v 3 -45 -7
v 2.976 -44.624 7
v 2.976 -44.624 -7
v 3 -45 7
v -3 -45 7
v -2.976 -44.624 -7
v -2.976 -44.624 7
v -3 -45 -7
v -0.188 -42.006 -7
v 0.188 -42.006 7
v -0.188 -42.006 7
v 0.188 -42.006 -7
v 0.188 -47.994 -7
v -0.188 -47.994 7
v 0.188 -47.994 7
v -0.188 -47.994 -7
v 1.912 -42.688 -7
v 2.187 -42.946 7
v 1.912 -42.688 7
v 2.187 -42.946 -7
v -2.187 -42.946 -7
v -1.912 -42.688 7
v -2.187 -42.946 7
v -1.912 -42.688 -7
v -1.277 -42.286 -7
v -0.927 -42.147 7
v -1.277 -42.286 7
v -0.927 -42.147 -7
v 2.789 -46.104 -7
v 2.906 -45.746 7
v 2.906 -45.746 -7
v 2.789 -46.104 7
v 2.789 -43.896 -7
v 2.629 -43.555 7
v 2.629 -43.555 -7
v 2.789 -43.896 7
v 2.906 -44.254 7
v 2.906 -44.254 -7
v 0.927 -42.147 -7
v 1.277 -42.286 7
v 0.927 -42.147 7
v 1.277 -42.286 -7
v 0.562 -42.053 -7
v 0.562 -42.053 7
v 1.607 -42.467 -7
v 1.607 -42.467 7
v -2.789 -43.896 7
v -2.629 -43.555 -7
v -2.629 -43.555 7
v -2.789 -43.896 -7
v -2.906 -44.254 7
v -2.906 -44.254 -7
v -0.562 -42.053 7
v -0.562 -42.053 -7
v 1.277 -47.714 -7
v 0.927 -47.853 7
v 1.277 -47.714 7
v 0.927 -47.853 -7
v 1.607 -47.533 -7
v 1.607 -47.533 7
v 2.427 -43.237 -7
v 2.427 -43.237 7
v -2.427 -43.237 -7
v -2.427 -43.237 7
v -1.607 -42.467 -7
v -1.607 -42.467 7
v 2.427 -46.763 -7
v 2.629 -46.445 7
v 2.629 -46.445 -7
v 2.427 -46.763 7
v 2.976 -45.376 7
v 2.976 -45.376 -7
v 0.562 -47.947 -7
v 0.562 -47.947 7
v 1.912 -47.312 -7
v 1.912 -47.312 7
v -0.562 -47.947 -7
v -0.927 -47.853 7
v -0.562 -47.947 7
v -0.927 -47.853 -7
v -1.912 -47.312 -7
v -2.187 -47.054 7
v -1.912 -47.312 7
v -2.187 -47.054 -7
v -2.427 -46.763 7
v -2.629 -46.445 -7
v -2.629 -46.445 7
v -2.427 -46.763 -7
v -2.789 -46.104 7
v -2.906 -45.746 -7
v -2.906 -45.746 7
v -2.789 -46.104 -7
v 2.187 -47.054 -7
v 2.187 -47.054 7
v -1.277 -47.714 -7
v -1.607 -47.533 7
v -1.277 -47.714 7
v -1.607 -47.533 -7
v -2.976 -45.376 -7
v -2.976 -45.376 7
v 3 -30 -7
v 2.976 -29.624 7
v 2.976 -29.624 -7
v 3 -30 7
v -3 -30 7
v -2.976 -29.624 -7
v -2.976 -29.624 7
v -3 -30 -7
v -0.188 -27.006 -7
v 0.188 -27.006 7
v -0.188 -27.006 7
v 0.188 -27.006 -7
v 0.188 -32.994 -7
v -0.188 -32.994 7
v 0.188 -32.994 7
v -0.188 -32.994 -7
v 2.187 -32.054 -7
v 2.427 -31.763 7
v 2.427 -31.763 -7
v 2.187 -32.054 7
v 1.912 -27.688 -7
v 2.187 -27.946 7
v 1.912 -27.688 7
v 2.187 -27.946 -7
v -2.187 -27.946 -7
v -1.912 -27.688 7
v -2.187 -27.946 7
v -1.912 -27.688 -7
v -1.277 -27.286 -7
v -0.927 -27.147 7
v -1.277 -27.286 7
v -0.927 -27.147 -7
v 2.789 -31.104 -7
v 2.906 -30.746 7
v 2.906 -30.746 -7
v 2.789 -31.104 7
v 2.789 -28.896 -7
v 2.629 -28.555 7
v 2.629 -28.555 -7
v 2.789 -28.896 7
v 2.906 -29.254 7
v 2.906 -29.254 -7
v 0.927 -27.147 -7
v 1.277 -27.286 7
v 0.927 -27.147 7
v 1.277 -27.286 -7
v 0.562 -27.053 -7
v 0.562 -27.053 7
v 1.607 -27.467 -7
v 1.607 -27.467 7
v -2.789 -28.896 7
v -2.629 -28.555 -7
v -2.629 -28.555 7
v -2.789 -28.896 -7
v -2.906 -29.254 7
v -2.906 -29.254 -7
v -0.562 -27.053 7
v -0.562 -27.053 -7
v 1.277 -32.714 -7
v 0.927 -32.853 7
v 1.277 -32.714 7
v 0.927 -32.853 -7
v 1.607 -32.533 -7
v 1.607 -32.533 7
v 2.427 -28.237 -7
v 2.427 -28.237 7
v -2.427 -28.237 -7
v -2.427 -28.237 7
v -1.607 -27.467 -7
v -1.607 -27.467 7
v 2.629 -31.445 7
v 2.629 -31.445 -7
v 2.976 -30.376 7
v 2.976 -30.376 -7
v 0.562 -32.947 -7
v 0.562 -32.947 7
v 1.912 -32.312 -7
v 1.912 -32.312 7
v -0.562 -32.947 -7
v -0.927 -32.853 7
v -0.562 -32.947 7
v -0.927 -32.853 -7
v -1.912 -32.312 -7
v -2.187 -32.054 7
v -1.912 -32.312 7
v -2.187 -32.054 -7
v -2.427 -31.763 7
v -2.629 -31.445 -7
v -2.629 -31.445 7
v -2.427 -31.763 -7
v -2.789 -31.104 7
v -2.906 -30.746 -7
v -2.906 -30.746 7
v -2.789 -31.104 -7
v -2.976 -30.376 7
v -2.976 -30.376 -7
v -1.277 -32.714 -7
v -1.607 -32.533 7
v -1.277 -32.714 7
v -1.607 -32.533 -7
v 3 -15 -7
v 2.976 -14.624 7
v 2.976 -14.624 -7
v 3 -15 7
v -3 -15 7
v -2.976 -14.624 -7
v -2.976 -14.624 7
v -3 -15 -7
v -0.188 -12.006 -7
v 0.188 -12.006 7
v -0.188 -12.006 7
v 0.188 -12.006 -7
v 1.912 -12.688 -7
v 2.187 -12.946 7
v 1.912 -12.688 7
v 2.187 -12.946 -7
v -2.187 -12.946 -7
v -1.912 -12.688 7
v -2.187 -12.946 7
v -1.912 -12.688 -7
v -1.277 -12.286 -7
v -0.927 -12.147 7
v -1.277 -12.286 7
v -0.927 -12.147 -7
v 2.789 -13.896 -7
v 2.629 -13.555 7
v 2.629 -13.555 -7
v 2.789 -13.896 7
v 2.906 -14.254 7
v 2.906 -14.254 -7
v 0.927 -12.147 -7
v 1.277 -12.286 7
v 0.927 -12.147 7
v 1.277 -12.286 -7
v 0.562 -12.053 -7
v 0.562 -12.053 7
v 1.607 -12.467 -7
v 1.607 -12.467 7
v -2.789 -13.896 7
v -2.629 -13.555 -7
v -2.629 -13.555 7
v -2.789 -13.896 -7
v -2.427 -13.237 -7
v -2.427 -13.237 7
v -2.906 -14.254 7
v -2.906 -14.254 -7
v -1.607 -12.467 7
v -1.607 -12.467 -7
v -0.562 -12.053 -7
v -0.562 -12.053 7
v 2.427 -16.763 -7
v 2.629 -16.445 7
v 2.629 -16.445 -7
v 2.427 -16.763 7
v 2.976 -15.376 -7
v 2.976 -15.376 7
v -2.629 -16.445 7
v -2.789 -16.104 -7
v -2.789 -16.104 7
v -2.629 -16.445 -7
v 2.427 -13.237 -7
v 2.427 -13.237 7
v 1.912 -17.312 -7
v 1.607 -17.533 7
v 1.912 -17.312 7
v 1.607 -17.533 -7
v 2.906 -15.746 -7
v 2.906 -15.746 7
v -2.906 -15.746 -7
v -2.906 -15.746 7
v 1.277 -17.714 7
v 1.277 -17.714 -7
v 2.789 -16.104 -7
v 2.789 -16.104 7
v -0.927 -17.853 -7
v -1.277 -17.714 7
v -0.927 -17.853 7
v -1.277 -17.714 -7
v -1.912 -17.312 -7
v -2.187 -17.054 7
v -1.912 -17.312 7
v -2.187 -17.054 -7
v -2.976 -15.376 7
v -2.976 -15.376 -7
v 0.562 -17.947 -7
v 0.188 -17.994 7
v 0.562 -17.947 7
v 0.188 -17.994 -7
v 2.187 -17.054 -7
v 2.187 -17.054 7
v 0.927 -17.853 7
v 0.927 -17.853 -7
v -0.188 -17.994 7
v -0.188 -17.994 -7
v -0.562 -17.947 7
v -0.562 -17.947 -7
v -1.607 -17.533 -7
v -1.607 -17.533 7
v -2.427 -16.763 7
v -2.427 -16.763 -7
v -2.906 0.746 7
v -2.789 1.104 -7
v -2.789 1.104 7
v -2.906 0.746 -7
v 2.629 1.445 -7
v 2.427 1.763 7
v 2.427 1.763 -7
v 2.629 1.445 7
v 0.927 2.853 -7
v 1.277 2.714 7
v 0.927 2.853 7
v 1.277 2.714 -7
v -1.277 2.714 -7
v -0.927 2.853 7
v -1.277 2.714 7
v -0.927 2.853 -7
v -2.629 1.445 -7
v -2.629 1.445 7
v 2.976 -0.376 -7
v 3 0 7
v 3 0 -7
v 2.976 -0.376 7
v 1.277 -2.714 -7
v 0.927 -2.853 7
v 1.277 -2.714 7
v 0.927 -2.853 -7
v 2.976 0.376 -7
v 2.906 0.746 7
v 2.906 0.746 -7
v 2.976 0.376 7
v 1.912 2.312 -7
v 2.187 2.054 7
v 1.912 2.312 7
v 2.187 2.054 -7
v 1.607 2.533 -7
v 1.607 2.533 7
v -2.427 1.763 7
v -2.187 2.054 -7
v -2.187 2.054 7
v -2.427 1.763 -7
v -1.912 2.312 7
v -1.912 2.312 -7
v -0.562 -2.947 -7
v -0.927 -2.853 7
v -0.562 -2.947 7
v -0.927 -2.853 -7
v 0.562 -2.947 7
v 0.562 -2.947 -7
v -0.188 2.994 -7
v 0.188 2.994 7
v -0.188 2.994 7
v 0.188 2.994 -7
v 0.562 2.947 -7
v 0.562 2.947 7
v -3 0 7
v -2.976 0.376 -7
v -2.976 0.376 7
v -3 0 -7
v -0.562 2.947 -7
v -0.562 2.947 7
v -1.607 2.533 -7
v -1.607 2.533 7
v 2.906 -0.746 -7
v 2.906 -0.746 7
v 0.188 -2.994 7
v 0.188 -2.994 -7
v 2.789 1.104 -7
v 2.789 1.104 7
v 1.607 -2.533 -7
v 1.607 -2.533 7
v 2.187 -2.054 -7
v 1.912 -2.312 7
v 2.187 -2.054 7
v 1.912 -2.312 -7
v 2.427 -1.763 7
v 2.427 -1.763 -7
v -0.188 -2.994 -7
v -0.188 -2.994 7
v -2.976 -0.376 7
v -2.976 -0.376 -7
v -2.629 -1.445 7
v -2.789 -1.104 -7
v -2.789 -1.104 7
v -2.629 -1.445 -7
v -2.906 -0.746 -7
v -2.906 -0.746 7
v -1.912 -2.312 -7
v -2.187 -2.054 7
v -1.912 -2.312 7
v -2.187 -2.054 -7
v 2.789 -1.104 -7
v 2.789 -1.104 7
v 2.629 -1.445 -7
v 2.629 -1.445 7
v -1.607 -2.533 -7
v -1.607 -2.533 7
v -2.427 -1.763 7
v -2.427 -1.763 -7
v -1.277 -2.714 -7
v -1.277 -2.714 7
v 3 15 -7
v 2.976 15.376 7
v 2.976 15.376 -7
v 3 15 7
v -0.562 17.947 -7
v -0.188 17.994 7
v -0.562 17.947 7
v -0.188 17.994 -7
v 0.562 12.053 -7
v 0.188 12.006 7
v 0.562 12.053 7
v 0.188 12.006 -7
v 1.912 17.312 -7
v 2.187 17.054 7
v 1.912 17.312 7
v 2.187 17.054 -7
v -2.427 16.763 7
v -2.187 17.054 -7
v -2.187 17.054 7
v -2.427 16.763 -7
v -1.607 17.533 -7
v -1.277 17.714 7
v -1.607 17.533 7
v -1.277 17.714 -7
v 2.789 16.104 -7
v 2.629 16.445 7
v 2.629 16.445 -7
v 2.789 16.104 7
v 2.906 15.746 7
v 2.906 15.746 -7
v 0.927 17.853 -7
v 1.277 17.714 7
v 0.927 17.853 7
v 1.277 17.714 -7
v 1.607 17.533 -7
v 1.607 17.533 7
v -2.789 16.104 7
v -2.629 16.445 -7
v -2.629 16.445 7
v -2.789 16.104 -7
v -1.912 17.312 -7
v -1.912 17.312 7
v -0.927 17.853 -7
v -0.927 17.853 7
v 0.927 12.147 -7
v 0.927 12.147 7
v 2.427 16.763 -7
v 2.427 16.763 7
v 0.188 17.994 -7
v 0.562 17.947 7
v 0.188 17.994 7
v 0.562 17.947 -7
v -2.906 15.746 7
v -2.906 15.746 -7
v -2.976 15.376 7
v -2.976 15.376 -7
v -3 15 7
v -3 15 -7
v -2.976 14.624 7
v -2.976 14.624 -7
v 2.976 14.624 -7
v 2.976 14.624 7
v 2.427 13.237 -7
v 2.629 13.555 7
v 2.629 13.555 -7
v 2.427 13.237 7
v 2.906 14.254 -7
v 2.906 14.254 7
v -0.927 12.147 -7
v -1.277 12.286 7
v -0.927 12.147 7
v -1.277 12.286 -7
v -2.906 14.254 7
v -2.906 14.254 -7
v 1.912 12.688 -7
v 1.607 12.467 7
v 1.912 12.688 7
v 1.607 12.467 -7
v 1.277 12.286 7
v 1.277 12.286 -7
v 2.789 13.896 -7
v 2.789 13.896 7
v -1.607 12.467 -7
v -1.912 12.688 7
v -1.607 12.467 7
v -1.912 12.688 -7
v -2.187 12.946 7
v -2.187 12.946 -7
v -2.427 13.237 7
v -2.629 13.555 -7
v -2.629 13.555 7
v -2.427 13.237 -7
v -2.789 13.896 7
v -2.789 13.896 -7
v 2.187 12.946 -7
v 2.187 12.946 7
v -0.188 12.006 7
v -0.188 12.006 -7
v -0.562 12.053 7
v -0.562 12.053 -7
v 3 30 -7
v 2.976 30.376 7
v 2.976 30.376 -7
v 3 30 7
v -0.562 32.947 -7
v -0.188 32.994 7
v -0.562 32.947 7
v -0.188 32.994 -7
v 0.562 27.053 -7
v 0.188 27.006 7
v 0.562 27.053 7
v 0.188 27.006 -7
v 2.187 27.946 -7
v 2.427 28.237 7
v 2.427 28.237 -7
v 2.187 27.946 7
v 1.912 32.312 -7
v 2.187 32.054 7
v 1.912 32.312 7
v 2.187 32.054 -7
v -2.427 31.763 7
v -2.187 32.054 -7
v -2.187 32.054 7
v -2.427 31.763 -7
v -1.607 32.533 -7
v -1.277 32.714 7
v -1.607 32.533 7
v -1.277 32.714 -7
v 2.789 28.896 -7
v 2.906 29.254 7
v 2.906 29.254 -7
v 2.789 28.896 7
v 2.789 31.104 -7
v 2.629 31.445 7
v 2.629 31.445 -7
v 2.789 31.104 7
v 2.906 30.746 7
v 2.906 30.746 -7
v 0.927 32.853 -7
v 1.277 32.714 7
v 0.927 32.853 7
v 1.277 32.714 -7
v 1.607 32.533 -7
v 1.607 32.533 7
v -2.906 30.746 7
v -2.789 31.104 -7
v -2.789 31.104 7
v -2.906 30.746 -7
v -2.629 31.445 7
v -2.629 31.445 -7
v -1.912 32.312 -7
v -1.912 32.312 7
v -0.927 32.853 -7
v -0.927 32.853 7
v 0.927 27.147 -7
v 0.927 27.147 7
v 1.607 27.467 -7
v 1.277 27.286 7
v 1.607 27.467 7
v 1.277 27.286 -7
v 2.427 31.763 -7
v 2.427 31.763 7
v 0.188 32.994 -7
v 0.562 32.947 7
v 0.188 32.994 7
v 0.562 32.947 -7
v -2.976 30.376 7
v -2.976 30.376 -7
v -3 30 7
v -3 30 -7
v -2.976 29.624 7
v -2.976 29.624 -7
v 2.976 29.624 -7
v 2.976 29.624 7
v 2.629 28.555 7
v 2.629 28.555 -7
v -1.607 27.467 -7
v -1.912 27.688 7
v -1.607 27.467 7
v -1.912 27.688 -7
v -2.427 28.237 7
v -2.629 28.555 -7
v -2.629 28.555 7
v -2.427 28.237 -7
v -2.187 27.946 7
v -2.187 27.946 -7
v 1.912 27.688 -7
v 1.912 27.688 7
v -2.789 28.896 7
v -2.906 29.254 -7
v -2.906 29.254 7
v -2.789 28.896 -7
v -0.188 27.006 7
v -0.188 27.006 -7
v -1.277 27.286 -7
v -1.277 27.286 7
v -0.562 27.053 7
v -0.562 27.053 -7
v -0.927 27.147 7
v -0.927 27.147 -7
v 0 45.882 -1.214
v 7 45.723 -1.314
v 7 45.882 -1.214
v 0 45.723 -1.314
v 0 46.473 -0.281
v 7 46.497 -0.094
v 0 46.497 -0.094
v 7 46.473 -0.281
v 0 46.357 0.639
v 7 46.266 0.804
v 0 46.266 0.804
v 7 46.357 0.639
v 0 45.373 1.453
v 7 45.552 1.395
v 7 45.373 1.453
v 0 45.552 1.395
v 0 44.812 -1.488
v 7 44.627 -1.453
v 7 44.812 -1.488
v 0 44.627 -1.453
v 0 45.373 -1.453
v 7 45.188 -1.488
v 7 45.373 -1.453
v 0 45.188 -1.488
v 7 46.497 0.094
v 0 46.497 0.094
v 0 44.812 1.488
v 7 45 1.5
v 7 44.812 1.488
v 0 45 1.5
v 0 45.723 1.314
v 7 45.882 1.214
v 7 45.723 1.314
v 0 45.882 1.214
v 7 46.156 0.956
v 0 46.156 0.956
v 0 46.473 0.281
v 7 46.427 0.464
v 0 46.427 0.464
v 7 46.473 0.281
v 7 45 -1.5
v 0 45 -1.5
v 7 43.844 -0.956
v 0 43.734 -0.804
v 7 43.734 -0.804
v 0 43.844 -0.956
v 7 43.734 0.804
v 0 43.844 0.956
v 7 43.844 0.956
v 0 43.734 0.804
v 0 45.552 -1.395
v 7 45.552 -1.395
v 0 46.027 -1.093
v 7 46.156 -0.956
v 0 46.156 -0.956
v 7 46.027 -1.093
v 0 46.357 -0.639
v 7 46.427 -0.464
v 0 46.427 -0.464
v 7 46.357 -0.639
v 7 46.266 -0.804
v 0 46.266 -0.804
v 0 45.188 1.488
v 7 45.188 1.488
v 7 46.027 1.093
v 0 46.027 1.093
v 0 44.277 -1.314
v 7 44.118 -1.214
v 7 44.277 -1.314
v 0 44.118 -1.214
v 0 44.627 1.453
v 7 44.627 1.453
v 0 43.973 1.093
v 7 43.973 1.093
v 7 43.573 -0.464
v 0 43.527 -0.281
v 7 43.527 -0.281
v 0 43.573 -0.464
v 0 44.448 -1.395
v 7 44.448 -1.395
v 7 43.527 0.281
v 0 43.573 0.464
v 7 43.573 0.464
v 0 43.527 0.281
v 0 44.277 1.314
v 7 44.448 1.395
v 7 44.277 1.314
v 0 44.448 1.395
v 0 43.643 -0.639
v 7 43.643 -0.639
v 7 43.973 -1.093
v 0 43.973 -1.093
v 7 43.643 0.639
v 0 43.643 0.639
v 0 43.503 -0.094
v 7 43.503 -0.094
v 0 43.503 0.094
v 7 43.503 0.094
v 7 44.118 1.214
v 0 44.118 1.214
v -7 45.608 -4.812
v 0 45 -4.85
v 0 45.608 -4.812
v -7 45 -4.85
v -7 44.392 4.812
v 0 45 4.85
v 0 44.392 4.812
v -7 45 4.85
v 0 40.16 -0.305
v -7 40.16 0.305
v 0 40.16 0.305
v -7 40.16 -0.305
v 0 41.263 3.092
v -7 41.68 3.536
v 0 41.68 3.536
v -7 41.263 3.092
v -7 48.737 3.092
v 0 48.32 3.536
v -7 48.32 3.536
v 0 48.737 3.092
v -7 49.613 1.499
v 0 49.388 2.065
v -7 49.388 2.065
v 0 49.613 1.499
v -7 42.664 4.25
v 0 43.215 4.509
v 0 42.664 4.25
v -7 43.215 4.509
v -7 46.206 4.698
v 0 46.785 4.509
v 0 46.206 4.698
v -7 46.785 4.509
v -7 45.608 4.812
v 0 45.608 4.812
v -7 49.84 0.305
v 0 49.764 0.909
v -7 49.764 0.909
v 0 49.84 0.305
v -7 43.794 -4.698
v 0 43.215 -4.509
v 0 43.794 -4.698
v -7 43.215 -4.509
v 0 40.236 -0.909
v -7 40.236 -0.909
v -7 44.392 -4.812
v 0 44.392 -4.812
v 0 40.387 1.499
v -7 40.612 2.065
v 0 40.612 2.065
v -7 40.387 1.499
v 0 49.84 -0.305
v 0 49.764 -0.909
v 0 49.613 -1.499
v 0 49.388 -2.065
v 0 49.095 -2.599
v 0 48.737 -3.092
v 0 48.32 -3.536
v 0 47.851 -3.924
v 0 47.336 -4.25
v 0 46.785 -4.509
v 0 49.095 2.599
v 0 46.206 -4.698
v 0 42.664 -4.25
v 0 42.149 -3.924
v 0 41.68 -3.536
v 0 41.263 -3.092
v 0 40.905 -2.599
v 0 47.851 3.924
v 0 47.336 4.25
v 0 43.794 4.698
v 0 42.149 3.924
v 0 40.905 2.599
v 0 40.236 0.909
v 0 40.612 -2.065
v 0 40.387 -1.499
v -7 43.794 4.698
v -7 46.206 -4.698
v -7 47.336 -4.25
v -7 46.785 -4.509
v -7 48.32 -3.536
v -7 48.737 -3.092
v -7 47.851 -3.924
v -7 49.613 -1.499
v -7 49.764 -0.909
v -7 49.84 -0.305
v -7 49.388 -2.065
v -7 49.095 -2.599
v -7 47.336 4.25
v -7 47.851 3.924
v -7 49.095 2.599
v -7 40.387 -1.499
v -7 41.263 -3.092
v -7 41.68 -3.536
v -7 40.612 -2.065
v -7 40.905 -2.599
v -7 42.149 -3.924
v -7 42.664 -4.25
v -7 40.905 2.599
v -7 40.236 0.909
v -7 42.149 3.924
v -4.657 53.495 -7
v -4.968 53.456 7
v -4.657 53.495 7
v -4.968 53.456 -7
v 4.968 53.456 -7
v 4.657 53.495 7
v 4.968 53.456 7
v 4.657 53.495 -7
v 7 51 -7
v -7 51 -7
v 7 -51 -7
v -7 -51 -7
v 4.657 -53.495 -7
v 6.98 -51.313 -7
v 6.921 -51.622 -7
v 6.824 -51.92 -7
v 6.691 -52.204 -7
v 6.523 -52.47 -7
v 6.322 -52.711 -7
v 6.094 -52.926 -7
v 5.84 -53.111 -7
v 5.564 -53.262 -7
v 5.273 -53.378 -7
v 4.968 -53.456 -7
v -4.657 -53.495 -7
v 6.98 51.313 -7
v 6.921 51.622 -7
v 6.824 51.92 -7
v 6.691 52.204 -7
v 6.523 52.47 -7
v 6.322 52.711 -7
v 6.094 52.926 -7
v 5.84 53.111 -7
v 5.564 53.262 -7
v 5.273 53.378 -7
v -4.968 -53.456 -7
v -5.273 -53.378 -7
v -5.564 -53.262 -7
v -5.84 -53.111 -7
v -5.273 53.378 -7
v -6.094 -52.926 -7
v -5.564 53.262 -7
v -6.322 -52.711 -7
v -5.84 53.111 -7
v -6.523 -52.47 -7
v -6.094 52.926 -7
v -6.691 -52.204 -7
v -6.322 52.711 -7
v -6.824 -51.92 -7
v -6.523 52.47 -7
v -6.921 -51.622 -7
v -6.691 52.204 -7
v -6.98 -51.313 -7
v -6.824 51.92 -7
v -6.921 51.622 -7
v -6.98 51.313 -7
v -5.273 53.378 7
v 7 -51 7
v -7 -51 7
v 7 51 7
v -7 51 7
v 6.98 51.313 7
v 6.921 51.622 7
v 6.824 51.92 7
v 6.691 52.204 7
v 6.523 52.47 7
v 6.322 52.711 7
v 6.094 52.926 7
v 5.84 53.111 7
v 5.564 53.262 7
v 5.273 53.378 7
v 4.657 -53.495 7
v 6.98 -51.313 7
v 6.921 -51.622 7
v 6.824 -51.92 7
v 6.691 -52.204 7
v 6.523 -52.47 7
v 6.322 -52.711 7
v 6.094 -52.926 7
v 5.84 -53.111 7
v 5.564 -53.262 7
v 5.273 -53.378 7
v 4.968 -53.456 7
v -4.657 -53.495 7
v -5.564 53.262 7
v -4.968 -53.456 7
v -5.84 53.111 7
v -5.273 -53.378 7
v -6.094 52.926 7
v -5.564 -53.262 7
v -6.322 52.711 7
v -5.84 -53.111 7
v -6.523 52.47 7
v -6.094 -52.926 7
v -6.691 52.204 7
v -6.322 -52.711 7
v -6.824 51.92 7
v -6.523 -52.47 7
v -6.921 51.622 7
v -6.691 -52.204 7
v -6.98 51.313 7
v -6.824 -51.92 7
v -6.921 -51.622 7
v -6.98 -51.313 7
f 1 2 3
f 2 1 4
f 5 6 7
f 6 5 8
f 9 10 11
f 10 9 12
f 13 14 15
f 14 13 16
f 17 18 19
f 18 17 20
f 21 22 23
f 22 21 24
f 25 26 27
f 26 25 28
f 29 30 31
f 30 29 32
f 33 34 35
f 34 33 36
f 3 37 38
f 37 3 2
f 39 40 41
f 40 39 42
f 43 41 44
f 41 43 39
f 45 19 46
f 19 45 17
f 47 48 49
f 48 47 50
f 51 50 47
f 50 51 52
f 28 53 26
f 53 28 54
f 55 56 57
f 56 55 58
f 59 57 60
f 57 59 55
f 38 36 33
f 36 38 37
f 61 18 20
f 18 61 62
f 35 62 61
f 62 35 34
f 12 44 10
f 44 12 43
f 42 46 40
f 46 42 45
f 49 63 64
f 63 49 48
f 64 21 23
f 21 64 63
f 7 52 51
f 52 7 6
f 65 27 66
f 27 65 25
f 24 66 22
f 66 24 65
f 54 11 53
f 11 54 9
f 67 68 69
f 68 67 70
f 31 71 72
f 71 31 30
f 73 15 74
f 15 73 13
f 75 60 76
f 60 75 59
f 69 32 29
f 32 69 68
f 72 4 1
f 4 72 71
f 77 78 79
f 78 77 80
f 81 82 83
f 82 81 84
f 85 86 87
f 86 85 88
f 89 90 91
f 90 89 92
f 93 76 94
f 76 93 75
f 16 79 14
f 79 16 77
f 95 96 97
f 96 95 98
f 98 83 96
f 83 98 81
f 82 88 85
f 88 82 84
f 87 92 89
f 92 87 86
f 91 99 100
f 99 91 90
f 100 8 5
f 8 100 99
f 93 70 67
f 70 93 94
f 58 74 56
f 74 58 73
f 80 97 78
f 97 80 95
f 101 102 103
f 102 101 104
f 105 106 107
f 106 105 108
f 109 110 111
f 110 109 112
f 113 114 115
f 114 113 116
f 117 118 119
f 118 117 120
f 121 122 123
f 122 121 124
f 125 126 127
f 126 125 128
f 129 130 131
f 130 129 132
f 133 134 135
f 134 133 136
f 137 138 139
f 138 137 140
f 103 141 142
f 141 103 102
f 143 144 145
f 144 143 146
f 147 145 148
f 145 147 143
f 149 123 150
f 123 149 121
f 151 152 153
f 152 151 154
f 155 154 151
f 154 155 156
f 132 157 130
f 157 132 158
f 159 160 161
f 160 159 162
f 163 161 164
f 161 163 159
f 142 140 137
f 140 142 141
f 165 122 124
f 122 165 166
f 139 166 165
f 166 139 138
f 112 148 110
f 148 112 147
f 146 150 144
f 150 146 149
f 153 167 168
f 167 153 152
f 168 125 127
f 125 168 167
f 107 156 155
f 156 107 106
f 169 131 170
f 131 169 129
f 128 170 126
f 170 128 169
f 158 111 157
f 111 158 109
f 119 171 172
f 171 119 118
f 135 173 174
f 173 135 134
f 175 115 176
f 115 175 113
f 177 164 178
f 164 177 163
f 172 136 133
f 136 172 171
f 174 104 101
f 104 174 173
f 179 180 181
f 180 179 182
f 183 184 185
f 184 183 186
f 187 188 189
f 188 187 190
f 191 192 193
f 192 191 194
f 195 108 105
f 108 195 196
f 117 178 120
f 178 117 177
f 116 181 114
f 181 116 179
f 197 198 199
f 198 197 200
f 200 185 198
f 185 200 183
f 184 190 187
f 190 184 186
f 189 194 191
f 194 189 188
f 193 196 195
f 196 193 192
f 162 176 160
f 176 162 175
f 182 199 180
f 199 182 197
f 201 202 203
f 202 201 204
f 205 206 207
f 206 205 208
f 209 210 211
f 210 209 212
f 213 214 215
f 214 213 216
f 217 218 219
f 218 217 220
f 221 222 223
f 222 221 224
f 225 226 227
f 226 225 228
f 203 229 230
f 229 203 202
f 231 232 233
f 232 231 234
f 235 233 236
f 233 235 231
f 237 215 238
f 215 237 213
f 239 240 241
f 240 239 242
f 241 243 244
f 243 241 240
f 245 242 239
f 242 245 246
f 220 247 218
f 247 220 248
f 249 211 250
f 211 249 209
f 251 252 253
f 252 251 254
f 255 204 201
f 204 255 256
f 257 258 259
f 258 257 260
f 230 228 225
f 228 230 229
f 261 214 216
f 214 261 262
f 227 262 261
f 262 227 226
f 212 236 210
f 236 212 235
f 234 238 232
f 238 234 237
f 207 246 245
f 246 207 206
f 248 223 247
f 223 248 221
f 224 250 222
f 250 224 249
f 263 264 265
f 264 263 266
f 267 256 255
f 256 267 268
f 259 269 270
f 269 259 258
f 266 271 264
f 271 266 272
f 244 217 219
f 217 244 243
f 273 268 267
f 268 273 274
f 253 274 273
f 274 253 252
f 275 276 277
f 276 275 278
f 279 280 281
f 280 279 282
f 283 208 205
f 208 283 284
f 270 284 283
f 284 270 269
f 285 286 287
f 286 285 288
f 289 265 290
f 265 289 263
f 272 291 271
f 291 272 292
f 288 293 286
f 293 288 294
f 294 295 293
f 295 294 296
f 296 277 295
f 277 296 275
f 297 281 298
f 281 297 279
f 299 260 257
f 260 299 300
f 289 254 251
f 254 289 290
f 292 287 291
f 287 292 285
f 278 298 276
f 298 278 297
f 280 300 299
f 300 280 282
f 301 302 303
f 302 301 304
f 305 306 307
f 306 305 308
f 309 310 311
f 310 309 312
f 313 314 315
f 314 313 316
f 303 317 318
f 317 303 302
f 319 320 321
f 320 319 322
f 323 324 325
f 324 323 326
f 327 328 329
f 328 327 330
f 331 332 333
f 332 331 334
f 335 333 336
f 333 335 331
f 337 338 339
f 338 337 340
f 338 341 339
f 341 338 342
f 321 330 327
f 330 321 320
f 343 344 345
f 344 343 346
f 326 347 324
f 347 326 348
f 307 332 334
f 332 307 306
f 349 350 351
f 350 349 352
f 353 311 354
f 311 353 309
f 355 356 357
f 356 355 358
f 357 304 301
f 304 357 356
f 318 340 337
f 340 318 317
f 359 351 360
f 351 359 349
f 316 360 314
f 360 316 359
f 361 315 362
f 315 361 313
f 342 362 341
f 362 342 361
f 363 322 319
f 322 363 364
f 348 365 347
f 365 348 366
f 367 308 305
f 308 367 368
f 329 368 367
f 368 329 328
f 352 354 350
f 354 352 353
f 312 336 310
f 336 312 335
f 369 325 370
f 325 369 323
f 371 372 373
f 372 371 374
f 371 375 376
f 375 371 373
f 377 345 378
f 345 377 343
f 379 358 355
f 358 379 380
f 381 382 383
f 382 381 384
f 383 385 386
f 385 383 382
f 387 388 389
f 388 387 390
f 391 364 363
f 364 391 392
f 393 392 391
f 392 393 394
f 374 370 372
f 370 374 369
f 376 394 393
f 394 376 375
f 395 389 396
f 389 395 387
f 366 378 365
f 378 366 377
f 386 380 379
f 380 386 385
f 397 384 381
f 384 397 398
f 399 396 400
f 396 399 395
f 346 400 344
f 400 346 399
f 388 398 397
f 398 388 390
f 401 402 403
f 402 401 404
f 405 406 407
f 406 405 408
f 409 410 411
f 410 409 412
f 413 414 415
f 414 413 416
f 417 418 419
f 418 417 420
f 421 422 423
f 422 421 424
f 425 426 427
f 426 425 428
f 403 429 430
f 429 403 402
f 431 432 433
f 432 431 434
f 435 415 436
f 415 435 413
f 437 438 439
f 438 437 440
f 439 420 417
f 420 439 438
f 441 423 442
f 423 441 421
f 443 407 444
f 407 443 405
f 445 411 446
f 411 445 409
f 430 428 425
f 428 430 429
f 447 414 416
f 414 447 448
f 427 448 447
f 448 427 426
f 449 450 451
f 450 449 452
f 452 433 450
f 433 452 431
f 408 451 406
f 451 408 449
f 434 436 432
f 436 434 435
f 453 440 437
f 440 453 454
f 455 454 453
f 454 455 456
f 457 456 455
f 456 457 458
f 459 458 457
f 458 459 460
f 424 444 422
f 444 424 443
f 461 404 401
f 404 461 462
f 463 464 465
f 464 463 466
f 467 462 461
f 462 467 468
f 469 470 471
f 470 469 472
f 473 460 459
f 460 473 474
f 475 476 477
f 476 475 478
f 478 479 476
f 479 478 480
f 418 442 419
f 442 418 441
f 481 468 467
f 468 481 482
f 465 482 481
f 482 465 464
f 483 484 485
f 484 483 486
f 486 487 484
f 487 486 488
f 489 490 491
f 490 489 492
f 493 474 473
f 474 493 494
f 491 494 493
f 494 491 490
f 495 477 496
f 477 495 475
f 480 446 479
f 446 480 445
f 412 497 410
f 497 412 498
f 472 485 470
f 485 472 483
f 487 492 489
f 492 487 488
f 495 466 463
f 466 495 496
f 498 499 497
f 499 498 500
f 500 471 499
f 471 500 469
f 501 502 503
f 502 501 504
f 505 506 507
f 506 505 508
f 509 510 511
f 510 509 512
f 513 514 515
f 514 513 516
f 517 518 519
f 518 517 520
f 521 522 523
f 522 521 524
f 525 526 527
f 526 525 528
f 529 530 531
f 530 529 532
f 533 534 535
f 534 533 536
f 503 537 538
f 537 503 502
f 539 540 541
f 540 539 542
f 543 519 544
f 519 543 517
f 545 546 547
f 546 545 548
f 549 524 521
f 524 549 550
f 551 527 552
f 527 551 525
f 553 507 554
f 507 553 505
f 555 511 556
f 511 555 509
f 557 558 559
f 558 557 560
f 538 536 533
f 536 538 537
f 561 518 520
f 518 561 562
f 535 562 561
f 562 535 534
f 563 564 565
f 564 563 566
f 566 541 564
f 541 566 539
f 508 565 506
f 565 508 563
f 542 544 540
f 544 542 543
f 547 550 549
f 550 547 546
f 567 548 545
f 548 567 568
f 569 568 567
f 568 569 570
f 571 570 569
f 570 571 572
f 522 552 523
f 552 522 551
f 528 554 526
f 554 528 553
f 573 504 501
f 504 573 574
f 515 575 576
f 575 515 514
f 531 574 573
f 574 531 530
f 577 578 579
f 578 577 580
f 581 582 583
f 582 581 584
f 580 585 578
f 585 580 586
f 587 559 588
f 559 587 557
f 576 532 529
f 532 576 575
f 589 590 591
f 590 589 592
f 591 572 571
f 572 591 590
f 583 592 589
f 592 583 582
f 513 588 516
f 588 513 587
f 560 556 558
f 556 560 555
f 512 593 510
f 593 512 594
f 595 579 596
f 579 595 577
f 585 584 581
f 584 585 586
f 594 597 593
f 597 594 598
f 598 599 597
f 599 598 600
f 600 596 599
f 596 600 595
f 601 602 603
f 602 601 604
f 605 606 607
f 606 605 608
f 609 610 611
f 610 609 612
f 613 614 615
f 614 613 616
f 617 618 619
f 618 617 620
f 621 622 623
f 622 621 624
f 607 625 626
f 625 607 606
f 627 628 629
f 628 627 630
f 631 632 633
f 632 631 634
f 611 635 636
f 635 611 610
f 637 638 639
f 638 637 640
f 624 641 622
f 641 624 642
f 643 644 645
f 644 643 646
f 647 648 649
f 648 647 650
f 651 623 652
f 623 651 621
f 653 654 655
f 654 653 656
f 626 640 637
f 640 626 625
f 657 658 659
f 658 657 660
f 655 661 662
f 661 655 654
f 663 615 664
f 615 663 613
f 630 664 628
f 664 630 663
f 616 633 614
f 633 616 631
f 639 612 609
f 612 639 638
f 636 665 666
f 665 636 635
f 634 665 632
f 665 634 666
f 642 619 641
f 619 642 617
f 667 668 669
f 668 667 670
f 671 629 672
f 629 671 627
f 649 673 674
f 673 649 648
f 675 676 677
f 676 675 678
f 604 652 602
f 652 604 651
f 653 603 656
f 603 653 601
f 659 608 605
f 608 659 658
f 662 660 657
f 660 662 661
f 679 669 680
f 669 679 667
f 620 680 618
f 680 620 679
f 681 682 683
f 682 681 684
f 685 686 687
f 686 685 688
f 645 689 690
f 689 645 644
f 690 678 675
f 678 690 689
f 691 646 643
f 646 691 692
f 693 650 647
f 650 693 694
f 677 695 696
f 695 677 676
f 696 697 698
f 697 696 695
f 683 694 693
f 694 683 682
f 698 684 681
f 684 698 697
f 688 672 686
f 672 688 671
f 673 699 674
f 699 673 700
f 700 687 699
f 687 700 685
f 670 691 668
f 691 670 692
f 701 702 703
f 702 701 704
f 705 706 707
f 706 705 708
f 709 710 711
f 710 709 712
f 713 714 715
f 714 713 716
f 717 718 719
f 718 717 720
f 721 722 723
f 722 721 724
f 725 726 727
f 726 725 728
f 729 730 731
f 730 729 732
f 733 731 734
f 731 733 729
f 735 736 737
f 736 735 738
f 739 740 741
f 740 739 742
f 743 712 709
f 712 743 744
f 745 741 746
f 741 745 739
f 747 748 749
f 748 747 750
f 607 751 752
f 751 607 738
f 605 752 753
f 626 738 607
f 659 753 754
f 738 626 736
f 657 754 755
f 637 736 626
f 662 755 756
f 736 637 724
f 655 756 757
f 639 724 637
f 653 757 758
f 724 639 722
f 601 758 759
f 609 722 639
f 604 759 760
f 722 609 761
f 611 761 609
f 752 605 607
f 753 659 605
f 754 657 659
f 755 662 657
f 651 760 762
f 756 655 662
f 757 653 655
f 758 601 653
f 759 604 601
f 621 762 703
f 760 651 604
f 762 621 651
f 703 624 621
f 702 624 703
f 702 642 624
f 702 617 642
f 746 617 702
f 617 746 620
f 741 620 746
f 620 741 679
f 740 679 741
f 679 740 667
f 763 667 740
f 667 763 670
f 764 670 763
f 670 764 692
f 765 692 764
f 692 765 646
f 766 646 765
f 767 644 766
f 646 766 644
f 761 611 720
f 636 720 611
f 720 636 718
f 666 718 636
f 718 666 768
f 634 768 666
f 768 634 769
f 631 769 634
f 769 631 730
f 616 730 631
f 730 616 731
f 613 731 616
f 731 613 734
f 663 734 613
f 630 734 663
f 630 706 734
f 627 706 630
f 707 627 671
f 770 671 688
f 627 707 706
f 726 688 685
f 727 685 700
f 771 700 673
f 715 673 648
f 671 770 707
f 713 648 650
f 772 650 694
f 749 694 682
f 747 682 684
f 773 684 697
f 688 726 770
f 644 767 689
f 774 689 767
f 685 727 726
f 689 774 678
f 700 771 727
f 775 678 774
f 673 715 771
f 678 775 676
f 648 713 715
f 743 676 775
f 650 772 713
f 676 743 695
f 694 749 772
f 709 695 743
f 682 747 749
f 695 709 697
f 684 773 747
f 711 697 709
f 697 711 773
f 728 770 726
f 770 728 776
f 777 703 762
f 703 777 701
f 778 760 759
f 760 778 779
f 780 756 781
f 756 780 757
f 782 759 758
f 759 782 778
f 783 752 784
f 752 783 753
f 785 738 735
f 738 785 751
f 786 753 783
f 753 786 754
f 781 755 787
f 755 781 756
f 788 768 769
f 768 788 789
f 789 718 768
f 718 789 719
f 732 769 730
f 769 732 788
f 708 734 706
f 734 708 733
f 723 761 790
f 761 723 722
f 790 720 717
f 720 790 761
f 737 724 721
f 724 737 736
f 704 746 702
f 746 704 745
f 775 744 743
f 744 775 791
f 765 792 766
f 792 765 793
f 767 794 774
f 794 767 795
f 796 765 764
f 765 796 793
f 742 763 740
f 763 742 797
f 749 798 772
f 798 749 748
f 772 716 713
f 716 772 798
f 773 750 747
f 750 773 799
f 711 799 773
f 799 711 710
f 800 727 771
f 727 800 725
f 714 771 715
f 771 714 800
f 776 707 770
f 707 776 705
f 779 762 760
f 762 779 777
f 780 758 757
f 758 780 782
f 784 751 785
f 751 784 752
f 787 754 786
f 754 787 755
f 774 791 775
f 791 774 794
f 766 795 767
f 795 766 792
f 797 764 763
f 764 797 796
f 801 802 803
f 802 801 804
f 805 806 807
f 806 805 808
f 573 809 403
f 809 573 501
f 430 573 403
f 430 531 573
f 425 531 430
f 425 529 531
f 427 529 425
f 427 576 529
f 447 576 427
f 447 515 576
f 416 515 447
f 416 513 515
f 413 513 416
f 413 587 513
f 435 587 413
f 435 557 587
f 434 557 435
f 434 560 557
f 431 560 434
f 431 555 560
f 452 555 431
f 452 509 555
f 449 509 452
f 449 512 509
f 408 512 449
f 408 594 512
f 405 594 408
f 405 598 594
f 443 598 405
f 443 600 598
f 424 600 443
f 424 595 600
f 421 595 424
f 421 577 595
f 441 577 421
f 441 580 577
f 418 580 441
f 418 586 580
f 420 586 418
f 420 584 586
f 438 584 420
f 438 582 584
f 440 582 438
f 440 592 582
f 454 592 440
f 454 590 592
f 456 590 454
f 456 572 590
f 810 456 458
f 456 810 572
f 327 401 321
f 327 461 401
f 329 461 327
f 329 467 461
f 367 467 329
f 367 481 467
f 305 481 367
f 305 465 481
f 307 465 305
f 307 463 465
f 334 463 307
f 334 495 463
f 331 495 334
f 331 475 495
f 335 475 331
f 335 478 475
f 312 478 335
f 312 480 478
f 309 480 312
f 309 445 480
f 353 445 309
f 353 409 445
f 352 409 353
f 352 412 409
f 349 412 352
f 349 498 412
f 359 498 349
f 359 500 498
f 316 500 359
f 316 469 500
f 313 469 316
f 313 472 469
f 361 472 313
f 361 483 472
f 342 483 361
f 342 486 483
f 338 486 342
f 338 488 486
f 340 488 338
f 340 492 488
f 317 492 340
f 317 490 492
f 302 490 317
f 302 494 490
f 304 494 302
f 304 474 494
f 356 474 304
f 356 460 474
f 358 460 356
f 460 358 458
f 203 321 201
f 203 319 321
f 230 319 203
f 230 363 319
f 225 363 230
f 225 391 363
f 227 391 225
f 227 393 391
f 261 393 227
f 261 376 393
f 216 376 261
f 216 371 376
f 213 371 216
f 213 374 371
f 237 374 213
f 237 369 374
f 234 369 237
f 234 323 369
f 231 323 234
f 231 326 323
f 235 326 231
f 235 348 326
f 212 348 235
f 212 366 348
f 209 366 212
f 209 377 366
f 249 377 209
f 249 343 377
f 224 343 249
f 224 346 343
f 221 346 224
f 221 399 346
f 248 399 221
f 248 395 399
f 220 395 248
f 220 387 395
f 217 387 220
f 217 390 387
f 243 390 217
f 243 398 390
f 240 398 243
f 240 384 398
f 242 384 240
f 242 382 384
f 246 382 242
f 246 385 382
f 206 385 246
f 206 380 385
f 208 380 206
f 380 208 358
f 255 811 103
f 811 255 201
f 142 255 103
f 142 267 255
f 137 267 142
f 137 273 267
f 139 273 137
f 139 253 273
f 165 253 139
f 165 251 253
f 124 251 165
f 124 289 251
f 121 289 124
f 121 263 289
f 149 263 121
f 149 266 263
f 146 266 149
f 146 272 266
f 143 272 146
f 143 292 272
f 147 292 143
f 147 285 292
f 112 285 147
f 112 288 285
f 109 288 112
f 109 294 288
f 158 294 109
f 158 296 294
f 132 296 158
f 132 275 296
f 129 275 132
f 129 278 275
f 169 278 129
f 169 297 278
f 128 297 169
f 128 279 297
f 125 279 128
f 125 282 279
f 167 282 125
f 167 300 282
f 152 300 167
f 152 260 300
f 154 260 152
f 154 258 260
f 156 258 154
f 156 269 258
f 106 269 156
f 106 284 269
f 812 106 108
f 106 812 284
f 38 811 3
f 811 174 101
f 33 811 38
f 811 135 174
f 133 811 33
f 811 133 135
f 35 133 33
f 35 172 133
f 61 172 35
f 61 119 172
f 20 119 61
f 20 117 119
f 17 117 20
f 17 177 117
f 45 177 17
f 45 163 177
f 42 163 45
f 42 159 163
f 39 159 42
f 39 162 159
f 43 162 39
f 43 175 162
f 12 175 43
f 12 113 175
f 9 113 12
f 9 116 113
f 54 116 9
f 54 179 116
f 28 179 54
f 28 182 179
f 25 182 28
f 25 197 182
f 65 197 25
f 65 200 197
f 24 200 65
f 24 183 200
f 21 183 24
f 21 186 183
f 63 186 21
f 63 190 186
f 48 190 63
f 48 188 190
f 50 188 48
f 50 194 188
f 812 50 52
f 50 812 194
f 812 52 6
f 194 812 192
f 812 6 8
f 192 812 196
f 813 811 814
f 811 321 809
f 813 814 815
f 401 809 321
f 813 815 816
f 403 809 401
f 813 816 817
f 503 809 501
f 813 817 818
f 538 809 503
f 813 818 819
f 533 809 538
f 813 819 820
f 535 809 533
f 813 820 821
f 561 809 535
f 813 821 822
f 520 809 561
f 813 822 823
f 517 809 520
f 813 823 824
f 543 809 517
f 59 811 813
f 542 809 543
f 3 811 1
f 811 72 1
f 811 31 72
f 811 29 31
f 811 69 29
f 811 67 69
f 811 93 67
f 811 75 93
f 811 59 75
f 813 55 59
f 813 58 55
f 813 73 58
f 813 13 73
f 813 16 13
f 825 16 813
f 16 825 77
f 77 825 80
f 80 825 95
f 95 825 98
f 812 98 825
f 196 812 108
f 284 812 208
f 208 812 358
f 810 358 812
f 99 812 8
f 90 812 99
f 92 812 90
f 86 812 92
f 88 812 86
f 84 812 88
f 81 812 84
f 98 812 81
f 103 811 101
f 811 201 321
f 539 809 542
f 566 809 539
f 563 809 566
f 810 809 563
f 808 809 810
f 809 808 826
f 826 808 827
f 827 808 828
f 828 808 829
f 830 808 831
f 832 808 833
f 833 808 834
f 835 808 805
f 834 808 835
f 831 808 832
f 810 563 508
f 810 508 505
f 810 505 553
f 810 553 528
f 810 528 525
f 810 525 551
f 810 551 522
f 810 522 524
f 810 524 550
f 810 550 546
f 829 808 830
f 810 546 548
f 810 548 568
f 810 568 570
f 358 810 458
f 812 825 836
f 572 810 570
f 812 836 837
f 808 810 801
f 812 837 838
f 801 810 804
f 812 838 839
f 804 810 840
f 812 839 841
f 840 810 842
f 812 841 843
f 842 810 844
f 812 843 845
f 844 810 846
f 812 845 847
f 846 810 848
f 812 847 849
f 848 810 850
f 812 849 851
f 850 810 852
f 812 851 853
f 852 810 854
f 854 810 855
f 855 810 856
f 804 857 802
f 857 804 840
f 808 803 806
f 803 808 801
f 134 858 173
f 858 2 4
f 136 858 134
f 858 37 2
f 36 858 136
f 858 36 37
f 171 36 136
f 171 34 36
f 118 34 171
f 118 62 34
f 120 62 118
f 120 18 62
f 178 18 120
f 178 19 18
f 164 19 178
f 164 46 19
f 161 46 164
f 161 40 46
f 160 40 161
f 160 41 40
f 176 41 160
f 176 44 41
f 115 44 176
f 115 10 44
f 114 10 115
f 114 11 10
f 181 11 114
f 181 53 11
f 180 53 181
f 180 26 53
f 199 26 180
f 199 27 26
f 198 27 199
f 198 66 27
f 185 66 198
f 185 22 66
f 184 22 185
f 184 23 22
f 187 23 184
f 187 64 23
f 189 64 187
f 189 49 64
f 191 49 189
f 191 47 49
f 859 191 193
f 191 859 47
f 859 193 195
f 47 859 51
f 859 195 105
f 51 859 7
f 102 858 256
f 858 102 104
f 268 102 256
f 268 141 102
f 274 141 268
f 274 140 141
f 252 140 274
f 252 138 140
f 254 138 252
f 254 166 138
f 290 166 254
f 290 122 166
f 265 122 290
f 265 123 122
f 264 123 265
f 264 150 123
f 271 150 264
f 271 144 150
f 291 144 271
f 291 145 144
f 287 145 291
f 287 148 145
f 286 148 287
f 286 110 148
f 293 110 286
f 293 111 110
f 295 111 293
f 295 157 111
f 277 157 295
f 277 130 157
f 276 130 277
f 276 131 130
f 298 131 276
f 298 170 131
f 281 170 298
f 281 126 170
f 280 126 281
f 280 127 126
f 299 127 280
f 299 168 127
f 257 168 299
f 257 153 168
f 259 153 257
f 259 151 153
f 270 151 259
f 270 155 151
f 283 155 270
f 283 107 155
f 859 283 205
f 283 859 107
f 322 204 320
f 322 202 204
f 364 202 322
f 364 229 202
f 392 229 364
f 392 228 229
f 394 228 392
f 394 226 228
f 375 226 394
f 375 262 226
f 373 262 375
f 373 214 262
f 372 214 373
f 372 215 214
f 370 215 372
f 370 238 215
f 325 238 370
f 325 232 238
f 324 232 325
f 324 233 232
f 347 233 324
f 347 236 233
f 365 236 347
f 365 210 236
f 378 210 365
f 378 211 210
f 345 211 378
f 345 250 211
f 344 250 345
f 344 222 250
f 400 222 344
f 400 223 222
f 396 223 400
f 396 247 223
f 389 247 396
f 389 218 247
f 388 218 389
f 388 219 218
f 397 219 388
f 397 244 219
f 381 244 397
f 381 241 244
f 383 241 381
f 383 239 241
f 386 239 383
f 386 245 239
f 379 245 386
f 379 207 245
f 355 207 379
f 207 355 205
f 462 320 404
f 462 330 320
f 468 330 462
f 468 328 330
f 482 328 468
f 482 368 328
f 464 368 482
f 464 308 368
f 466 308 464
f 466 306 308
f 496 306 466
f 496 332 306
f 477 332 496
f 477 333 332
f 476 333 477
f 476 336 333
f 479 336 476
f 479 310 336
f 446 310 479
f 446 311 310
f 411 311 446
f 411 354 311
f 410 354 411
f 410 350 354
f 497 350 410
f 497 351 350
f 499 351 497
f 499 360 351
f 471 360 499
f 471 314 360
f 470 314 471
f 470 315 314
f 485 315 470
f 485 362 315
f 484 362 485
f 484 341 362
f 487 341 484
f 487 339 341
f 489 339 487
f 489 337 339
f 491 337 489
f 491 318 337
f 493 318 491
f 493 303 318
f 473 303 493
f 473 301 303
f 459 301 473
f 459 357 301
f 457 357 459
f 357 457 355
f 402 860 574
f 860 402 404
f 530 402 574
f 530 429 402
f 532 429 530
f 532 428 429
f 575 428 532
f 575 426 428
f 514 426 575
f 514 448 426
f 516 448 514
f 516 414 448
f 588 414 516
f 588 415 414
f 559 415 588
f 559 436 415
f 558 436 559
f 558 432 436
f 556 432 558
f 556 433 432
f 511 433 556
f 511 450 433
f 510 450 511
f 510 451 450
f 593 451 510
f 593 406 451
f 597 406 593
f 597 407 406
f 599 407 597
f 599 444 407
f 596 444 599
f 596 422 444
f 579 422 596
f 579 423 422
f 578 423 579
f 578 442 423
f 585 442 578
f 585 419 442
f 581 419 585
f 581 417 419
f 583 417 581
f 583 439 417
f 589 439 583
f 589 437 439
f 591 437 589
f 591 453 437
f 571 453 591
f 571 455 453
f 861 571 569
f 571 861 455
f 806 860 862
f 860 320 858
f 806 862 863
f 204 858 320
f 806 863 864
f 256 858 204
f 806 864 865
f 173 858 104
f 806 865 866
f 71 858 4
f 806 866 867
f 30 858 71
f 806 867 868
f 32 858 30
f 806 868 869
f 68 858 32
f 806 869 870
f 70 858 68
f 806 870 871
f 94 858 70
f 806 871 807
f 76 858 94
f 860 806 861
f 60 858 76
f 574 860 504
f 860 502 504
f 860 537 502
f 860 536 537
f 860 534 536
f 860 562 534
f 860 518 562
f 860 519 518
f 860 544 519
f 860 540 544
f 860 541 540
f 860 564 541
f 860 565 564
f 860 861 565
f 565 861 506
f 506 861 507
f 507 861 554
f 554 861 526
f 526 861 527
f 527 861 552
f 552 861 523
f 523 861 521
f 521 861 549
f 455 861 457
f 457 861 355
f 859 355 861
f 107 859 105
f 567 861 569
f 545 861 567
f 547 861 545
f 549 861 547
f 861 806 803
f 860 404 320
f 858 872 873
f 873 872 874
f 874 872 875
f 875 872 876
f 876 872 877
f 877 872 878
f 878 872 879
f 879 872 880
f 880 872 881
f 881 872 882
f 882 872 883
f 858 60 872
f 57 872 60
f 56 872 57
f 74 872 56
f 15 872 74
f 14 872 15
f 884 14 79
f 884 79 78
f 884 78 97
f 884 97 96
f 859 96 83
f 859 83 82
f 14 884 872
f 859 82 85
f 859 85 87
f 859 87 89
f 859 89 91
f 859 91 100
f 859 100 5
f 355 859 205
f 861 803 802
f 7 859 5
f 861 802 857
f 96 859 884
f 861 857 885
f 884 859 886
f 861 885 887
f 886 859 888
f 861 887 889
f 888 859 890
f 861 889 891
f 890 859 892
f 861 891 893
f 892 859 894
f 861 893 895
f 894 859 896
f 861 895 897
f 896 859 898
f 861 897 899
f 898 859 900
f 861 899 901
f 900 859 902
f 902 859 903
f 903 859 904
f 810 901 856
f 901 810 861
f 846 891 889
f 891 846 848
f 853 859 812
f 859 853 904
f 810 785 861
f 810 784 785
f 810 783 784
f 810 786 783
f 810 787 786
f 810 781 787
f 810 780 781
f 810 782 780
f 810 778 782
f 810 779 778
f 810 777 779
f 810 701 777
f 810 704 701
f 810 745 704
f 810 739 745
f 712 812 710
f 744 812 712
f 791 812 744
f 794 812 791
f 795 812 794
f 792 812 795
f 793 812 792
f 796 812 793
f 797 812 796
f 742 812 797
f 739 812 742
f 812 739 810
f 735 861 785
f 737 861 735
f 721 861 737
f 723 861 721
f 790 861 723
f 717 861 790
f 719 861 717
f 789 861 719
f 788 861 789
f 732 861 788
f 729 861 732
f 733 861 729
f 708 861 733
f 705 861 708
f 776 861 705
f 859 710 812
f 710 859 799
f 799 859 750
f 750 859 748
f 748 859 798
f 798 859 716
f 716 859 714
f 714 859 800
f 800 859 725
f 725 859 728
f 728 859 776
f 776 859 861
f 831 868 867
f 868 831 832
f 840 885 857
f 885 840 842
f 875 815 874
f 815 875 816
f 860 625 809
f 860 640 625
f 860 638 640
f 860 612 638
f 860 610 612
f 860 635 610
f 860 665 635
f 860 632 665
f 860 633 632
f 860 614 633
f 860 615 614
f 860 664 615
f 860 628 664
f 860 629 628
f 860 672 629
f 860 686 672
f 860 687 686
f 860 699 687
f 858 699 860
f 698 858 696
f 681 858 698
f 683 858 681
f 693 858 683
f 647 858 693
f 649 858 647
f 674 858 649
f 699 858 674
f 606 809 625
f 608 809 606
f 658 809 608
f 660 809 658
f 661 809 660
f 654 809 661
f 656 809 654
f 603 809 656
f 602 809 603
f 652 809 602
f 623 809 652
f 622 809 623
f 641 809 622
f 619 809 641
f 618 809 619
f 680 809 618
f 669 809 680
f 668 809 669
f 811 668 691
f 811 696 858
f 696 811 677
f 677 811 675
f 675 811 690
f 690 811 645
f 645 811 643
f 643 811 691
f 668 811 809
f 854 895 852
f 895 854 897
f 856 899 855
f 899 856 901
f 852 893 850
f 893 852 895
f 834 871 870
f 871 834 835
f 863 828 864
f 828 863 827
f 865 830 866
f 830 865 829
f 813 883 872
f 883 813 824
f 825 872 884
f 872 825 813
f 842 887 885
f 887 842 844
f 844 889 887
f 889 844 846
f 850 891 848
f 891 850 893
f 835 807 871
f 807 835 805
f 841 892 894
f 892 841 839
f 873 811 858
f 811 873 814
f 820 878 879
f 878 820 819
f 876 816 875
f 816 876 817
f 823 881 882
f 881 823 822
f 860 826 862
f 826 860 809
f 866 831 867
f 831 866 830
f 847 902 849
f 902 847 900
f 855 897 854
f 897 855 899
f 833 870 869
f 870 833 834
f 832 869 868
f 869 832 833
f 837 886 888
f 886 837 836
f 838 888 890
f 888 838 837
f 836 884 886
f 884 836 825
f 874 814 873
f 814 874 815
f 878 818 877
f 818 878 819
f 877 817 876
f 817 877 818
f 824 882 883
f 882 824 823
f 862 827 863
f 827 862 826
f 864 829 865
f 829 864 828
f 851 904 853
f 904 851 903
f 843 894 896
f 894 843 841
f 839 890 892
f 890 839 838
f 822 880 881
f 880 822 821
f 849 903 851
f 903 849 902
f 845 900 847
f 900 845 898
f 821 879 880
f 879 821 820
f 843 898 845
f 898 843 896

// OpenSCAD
$fn = 50;


difference() {
	union() {
		translate(v = [0, 0, -7.0000000000]) {
			hull() {
				translate(v = [-4.5000000000, 51.0000000000, 0]) {
					cylinder(h = 14, r = 2.5000000000);
				}
				translate(v = [4.5000000000, 51.0000000000, 0]) {
					cylinder(h = 14, r = 2.5000000000);
				}
				translate(v = [-4.5000000000, -51.0000000000, 0]) {
					cylinder(h = 14, r = 2.5000000000);
				}
				translate(v = [4.5000000000, -51.0000000000, 0]) {
					cylinder(h = 14, r = 2.5000000000);
				}
			}
		}
	}
	union() {
		translate(v = [0.0000000000, -45.0000000000, -100.0000000000]) {
			cylinder(h = 200, r = 3.0000000000);
		}
		translate(v = [0.0000000000, -30.0000000000, -100.0000000000]) {
			cylinder(h = 200, r = 3.0000000000);
		}
		translate(v = [0.0000000000, -15.0000000000, -100.0000000000]) {
			cylinder(h = 200, r = 3.0000000000);
		}
		translate(v = [0.0000000000, 0.0000000000, -100.0000000000]) {
			cylinder(h = 200, r = 3.0000000000);
		}
		translate(v = [0.0000000000, 15.0000000000, -100.0000000000]) {
			cylinder(h = 200, r = 3.0000000000);
		}
		translate(v = [0.0000000000, 30.0000000000, -100.0000000000]) {
			cylinder(h = 200, r = 3.0000000000);
		}
		translate(v = [-50, 45, 0]) {
			rotate(a = [0, 90, 0]) {
				cylinder(h = 100, r = 1.5000000000);
			}
		}
		translate(v = [-100, 45, 0]) {
			rotate(a = [0, 90, 0]) {
				cylinder(h = 100, r = 4.8500000000);
			}
		}
	}
}
